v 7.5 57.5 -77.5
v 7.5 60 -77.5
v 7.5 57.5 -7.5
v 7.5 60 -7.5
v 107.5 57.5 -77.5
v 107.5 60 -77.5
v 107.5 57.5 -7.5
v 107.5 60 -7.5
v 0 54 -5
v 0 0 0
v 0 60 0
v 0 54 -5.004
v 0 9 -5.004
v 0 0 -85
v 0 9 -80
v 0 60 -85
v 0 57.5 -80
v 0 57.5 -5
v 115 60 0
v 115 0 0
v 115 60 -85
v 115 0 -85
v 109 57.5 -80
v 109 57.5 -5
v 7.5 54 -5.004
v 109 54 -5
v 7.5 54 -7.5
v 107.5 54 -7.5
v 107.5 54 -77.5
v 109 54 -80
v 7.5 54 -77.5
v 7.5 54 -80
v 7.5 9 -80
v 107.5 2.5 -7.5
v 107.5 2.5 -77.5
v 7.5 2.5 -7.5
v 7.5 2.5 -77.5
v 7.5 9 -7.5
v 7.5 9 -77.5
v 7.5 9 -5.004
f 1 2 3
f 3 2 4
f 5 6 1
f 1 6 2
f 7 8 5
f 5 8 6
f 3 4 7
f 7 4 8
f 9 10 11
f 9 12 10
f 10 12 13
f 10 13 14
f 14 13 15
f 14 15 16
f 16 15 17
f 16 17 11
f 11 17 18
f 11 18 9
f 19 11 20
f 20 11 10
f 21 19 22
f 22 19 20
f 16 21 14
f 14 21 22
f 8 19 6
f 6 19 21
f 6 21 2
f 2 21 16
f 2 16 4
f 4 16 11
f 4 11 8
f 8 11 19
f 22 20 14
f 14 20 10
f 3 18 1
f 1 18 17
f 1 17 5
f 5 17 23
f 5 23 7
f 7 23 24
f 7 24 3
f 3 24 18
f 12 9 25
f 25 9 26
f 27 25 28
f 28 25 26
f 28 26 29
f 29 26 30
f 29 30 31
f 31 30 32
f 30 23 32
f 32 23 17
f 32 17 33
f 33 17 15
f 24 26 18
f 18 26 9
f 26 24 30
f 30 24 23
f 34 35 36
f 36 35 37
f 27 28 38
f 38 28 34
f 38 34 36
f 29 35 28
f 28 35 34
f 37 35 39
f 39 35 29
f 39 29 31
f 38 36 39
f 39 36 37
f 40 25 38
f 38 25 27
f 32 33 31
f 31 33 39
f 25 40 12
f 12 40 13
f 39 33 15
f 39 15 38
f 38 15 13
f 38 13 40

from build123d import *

# Parameters (mm, degrees)
SKETCH1_W           = 115
SKETCH1_H           = 85
BOSS_EXTRUDE1_DEPTH = 60
SKETCH2_W           = 100
SKETCH2_H           = 70
CUT_EXTRUDE1_DEPTH  = 57.5
SKETCH3_W           = 75
SKETCH3_H           = 3.5
CUT_EXTRUDE2_DEPTH  = 109
SKETCH4_W           = 74.99639209
SKETCH4_H           = 45
CUT_EXTRUDE3_DEPTH  = 7.5


with BuildPart() as part:
    # Sketch1 → Boss-Extrude1 (new body)
    with BuildSketch(Plane(origin=(0, 0, 0), x_dir=(1, 0, 0), z_dir=(0, 1, 0))):
        with Locations((57.5, 42.5)):
            Rectangle(SKETCH1_W, SKETCH1_H)
    extrude(amount=BOSS_EXTRUDE1_DEPTH)

    # Sketch2 → Cut-Extrude1 (cut)
    with BuildSketch(Plane(origin=(0, 60, 0), x_dir=(1, 0, 0), z_dir=(0, 1, 0))):
        with Locations((57.5, 42.5)):
            Rectangle(SKETCH2_W, SKETCH2_H)
    extrude(amount=-CUT_EXTRUDE1_DEPTH, mode=Mode.SUBTRACT)

    # Sketch3 → Cut-Extrude2 (cut)
    with BuildSketch(Plane.ZY):
        with Locations((-42.5, 55.75)):
            Rectangle(SKETCH3_W, SKETCH3_H)
    extrude(amount=-CUT_EXTRUDE2_DEPTH, mode=Mode.SUBTRACT)

    # Sketch4 → Cut-Extrude3 (cut)
    with BuildSketch(Plane.ZY):
        with Locations((-42.501803955, 31.5)):
            Rectangle(SKETCH4_W, SKETCH4_H)
    extrude(amount=-CUT_EXTRUDE3_DEPTH, mode=Mode.SUBTRACT)


solid = part.part
